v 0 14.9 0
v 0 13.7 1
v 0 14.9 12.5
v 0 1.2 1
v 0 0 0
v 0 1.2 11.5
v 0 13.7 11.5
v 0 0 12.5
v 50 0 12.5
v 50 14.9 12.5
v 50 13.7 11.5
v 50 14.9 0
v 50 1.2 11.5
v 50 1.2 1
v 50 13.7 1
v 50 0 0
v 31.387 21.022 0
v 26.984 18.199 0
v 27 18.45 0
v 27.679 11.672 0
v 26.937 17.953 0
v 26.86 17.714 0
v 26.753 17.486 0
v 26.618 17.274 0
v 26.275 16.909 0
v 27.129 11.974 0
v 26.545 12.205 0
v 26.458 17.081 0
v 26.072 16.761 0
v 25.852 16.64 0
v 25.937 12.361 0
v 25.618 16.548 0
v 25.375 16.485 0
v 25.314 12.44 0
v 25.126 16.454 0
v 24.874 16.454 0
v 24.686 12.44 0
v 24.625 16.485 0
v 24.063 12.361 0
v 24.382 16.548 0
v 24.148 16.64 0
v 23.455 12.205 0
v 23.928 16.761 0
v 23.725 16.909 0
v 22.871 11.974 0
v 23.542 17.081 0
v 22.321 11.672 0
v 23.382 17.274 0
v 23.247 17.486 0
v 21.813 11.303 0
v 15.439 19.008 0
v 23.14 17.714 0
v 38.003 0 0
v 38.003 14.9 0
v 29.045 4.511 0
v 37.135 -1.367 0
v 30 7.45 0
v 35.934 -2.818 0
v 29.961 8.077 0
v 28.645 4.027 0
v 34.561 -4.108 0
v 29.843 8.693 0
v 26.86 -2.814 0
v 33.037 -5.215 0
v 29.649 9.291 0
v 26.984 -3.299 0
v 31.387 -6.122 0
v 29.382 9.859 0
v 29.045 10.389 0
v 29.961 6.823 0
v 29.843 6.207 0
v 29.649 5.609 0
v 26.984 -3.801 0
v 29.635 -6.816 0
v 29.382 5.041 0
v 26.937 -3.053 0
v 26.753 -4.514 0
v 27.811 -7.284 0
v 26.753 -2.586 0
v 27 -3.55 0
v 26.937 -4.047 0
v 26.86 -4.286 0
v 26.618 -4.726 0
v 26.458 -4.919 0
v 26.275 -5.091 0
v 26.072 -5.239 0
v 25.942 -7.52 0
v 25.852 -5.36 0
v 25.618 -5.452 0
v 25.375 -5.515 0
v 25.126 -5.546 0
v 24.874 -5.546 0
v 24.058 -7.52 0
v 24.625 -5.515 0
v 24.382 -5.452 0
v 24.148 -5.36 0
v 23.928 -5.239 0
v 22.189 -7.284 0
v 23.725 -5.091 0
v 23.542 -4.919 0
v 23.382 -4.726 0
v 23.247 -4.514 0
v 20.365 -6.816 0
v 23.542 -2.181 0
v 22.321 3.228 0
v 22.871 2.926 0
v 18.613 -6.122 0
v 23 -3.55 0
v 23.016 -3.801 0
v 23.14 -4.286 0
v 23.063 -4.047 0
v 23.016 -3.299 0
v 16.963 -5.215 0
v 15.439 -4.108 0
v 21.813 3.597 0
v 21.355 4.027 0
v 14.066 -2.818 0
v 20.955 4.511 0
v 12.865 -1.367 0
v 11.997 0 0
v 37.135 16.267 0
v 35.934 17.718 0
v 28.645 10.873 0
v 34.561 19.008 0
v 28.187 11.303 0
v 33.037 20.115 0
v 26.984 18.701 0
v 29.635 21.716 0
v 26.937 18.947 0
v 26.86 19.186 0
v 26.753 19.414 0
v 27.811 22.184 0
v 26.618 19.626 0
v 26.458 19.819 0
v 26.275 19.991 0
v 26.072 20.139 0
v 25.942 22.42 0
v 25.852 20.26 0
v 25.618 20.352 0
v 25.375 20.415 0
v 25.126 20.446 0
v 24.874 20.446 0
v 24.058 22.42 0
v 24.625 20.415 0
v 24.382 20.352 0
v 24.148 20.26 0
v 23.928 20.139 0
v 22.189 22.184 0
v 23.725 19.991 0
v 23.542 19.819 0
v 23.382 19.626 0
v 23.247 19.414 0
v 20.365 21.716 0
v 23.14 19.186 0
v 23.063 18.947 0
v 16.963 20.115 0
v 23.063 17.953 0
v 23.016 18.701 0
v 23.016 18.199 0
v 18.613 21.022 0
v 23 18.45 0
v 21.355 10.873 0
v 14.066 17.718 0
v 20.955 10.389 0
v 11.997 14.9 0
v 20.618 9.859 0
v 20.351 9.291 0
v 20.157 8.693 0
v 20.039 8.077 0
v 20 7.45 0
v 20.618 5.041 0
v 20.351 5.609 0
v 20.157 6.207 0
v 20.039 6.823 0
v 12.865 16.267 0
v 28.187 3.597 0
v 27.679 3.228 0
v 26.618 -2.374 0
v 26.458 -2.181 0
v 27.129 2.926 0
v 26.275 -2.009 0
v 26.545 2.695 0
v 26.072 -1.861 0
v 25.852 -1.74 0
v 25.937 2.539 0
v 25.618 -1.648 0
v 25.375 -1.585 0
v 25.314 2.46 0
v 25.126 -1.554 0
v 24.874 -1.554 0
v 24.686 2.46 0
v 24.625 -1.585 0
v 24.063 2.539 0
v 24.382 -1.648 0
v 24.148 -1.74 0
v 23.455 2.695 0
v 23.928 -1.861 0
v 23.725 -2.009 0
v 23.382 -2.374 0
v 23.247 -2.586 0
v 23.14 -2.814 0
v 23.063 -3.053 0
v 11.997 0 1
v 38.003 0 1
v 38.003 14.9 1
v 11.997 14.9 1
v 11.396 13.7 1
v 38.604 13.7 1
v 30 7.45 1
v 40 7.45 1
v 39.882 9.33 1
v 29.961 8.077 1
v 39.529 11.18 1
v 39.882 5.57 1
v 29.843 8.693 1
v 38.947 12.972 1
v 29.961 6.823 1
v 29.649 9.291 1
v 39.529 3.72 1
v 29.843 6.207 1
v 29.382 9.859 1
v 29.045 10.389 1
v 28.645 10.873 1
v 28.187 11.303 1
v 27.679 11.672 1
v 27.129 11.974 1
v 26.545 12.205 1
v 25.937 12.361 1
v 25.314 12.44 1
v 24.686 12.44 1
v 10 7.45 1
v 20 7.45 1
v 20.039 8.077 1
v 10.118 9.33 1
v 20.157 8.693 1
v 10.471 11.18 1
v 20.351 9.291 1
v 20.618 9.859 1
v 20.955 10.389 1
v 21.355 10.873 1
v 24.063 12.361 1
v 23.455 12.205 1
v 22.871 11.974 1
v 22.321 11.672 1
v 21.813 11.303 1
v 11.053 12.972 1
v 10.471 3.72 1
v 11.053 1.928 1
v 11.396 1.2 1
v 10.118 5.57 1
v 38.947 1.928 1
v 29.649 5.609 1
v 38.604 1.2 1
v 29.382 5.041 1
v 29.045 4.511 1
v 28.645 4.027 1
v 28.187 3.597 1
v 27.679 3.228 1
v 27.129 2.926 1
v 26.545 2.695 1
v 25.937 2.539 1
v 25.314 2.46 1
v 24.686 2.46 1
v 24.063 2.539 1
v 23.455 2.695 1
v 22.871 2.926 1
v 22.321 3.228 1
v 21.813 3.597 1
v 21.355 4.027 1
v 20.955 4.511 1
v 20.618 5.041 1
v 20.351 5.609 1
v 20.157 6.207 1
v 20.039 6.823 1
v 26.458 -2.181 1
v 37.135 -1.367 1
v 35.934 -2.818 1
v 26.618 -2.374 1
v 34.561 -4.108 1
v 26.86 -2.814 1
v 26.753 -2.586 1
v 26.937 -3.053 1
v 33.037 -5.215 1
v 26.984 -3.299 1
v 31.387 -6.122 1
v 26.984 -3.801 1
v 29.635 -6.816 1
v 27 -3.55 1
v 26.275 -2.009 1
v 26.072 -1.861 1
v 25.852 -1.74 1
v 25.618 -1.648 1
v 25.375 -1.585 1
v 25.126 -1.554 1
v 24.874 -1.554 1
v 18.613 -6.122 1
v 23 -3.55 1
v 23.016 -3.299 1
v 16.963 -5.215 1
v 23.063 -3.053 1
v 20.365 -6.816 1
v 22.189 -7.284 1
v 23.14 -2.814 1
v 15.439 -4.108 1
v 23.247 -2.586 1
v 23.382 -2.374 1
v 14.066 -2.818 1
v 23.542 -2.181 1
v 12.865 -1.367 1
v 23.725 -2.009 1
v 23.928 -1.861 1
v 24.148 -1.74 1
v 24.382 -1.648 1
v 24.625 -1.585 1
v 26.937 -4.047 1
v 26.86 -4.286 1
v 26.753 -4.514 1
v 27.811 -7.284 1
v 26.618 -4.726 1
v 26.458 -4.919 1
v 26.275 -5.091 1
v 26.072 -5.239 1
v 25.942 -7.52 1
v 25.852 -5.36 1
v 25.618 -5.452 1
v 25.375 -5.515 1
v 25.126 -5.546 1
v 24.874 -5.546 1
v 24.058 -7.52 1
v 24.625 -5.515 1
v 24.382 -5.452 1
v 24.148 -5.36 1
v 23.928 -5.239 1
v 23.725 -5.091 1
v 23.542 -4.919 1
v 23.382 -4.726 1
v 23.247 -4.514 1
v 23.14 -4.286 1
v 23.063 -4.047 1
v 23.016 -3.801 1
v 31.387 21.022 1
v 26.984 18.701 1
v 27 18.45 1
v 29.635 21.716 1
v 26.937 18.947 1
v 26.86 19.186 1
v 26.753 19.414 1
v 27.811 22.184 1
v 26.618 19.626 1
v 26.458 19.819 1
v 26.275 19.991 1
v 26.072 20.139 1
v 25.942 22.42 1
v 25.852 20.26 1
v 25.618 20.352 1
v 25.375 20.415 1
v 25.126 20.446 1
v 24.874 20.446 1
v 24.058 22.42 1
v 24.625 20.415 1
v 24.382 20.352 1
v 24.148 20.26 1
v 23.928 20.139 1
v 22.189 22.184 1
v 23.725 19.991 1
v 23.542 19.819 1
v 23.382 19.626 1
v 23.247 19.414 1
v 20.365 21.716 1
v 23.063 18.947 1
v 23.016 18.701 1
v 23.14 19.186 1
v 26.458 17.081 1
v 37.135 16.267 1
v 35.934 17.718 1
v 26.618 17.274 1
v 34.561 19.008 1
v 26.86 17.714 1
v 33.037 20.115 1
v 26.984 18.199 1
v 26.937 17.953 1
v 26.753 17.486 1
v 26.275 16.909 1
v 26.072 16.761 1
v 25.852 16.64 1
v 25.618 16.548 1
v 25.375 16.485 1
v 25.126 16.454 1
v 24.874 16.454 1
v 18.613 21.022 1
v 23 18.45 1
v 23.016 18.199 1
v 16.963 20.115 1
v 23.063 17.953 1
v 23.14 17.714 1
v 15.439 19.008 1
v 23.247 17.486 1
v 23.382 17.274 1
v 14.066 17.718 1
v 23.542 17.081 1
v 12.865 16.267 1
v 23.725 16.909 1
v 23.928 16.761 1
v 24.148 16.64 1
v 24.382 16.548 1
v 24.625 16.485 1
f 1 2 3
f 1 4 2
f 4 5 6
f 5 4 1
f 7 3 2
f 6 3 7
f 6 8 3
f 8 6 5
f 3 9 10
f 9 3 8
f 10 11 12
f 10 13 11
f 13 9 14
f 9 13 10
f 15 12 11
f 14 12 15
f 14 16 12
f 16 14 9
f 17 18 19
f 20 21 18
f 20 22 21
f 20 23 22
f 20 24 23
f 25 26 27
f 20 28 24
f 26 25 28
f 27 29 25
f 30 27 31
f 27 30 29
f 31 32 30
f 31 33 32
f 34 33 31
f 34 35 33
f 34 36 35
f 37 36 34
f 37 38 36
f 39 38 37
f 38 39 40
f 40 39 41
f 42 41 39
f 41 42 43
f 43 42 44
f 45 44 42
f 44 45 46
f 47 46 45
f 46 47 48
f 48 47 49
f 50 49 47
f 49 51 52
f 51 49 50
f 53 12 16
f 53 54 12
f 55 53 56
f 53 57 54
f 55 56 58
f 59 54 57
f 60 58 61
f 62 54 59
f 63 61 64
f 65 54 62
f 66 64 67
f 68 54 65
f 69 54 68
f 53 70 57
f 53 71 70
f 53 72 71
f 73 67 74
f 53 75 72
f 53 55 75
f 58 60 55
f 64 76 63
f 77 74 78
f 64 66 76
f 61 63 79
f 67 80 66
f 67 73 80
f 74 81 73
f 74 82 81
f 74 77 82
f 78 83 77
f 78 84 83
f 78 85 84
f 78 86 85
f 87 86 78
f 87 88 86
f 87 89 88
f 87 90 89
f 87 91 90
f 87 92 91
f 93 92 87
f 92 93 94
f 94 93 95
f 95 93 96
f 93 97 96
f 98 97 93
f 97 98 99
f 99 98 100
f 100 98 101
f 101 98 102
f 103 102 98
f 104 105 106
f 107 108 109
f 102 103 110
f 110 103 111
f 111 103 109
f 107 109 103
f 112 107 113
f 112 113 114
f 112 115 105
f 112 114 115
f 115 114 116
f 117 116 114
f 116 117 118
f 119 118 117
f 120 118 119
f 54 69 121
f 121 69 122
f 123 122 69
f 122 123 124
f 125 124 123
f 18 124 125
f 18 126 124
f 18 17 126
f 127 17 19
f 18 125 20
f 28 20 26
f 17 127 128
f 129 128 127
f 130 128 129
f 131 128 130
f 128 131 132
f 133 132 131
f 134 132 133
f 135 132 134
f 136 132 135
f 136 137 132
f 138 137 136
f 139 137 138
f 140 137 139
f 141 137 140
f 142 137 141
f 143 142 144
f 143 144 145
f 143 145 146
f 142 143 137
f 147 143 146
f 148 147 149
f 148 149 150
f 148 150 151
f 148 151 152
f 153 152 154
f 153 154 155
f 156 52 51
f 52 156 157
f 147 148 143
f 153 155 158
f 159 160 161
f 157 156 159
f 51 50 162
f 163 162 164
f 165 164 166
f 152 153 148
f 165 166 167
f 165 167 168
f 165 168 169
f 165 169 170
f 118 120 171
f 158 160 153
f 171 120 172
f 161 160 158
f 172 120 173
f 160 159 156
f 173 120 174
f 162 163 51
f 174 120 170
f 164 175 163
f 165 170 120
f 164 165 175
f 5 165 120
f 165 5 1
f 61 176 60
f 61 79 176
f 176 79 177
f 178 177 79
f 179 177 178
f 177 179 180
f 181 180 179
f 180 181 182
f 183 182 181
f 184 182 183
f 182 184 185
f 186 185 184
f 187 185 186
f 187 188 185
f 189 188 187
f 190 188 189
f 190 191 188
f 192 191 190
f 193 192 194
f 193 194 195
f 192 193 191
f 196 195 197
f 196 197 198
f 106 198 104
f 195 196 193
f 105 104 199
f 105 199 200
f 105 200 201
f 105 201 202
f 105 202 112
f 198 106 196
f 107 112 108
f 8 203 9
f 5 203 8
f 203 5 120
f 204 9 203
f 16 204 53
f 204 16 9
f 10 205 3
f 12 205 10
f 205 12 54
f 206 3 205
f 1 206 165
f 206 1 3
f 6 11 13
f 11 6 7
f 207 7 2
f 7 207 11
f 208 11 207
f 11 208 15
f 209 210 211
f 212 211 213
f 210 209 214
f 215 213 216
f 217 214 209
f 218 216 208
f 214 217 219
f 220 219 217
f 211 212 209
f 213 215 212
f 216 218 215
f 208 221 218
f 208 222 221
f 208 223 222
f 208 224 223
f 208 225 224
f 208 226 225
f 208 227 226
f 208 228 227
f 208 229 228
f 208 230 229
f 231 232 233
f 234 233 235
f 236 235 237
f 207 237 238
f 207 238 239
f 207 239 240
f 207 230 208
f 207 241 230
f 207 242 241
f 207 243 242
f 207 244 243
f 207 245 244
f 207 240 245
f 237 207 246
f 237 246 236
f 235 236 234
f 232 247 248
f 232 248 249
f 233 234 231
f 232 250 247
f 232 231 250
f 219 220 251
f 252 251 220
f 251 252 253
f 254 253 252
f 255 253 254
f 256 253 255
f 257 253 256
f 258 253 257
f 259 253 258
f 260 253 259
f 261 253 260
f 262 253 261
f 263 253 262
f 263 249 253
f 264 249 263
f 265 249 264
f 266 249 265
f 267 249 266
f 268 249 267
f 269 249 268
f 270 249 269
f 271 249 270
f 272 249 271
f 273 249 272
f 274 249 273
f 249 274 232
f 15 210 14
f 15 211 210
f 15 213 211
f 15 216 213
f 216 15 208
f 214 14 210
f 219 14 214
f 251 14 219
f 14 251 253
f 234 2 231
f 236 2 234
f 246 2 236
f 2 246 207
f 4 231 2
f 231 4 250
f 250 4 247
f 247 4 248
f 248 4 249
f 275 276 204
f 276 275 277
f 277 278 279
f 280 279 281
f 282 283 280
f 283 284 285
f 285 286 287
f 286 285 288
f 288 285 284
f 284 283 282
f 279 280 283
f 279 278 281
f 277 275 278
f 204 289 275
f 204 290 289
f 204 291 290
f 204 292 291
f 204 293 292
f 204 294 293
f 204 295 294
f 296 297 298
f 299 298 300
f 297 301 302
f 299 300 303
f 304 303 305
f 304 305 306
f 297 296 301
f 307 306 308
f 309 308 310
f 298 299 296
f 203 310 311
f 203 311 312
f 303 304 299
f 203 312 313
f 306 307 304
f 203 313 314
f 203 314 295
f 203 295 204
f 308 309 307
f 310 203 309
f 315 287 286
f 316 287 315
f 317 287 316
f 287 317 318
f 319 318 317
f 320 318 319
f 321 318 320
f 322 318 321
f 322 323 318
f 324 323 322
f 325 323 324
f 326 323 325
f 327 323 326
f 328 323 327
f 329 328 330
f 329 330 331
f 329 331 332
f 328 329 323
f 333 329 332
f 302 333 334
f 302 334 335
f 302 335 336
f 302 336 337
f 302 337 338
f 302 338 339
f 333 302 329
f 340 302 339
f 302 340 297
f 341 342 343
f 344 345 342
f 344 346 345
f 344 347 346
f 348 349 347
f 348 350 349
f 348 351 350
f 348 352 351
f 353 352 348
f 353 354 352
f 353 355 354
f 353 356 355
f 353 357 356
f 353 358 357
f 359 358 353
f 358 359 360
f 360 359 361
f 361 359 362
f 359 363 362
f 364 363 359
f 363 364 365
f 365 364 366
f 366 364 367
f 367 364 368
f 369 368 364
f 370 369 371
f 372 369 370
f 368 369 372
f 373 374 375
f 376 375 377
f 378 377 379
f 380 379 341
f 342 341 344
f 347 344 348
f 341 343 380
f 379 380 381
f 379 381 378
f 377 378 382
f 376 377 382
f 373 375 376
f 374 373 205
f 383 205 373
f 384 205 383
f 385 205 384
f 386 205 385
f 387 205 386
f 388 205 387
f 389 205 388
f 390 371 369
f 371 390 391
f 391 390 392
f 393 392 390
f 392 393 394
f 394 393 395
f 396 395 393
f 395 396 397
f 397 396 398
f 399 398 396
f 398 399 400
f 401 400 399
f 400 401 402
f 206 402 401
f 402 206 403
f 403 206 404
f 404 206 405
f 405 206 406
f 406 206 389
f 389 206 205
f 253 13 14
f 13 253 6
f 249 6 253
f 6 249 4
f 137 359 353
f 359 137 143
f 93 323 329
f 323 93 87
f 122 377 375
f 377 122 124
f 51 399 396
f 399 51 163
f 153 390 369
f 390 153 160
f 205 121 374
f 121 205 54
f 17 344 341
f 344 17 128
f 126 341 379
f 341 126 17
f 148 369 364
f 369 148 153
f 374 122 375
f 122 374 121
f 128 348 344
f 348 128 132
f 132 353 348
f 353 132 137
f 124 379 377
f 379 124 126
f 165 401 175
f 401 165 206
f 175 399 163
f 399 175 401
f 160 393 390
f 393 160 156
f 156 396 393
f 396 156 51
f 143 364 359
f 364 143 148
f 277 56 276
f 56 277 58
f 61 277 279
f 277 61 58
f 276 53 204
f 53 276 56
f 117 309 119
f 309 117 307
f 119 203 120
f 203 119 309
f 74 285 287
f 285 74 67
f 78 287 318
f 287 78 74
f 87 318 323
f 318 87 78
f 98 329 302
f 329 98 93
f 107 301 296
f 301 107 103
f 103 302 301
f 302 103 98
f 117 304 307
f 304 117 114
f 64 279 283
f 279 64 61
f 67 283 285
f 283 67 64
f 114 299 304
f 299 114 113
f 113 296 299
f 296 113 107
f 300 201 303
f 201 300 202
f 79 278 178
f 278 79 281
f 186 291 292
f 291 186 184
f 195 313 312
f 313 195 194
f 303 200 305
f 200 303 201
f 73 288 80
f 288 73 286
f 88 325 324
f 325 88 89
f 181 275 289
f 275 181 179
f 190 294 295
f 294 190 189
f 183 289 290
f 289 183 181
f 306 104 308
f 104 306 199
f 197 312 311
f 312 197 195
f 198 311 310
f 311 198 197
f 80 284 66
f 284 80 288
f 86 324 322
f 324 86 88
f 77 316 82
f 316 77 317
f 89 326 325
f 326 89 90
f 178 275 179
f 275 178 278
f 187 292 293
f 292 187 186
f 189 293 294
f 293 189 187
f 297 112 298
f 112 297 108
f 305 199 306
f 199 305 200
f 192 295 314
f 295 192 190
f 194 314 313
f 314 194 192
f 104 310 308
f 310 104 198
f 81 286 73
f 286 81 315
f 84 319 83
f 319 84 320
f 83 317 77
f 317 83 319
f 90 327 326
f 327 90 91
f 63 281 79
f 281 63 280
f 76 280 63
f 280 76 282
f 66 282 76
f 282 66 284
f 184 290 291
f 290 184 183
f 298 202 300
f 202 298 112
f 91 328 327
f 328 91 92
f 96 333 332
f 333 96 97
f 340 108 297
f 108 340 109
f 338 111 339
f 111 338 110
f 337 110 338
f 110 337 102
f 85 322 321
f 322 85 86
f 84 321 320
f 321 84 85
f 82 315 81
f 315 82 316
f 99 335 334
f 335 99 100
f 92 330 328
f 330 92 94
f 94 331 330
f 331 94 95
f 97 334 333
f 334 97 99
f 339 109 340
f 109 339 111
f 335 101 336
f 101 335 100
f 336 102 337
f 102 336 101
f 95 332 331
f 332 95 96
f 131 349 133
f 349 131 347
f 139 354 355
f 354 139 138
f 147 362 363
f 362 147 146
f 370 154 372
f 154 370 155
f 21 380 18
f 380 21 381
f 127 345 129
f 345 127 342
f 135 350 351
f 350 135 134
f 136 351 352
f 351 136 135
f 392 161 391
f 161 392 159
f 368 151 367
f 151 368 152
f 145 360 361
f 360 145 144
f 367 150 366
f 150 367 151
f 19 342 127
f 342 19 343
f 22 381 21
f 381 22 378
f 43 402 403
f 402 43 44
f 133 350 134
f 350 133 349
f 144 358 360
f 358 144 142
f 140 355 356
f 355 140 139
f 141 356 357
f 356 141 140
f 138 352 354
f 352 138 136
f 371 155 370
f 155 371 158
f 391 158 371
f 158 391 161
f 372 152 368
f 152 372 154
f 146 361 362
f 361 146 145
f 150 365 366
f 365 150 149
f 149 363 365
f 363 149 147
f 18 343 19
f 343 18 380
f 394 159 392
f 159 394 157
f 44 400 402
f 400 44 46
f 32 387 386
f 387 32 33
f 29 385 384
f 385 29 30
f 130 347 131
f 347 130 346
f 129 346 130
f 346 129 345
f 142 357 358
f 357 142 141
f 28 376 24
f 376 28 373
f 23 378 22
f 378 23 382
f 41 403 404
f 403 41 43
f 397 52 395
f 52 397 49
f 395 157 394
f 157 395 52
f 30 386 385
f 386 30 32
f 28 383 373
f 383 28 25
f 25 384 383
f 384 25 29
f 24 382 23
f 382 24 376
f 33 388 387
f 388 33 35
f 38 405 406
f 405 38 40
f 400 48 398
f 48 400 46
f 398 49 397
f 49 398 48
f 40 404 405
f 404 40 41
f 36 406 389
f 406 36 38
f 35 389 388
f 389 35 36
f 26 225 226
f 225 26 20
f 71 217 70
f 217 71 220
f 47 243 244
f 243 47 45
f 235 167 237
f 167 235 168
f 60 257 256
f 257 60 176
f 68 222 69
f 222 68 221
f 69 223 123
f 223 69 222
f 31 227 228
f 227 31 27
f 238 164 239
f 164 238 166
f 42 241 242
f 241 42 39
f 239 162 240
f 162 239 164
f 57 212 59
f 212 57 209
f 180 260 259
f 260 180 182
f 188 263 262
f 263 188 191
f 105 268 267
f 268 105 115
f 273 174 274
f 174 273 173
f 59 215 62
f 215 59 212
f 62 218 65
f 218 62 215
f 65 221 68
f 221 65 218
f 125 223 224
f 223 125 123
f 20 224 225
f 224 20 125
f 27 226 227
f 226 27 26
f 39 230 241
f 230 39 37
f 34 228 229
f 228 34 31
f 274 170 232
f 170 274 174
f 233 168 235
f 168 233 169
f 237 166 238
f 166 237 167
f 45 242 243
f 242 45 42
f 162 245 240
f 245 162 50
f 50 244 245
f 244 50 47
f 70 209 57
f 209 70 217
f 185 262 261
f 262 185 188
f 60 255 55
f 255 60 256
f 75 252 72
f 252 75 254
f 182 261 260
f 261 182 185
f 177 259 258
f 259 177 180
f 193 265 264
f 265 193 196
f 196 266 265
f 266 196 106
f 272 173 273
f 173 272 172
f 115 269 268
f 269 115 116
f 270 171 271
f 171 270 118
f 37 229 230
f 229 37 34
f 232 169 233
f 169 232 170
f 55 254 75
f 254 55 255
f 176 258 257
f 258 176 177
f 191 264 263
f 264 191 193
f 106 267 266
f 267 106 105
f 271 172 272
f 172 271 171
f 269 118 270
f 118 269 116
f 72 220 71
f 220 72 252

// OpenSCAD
wall = 1.2;
wallz = 1;

motorW = 12.5;
motorH = 10.5;

length = 50;

$fn = 50;

baseDia = 30;

difference() {
    union() {
        difference() {
            cube([length,motorW+wall*2,wallz*2+motorH]);
            translate([-1,wall,wallz]) cube([length+2, motorW, motorH]);
        }

        translate([length/2,(motorW+wall*2)/2,0]) difference() {
            cylinder(d=baseDia,h=wallz,$fn=$fn);
            translate([0,-11,-1]) cylinder(d=4,h=wallz+3,$fn=$fn);
            translate([0,11,-1]) cylinder(d=4,h=wallz+3,$fn=$fn);
        }
    }
    
    translate([length/2,(motorW+wall*2)/2,-1]) cylinder(d=10,h=wallz+2,$fn=$fn);
}
